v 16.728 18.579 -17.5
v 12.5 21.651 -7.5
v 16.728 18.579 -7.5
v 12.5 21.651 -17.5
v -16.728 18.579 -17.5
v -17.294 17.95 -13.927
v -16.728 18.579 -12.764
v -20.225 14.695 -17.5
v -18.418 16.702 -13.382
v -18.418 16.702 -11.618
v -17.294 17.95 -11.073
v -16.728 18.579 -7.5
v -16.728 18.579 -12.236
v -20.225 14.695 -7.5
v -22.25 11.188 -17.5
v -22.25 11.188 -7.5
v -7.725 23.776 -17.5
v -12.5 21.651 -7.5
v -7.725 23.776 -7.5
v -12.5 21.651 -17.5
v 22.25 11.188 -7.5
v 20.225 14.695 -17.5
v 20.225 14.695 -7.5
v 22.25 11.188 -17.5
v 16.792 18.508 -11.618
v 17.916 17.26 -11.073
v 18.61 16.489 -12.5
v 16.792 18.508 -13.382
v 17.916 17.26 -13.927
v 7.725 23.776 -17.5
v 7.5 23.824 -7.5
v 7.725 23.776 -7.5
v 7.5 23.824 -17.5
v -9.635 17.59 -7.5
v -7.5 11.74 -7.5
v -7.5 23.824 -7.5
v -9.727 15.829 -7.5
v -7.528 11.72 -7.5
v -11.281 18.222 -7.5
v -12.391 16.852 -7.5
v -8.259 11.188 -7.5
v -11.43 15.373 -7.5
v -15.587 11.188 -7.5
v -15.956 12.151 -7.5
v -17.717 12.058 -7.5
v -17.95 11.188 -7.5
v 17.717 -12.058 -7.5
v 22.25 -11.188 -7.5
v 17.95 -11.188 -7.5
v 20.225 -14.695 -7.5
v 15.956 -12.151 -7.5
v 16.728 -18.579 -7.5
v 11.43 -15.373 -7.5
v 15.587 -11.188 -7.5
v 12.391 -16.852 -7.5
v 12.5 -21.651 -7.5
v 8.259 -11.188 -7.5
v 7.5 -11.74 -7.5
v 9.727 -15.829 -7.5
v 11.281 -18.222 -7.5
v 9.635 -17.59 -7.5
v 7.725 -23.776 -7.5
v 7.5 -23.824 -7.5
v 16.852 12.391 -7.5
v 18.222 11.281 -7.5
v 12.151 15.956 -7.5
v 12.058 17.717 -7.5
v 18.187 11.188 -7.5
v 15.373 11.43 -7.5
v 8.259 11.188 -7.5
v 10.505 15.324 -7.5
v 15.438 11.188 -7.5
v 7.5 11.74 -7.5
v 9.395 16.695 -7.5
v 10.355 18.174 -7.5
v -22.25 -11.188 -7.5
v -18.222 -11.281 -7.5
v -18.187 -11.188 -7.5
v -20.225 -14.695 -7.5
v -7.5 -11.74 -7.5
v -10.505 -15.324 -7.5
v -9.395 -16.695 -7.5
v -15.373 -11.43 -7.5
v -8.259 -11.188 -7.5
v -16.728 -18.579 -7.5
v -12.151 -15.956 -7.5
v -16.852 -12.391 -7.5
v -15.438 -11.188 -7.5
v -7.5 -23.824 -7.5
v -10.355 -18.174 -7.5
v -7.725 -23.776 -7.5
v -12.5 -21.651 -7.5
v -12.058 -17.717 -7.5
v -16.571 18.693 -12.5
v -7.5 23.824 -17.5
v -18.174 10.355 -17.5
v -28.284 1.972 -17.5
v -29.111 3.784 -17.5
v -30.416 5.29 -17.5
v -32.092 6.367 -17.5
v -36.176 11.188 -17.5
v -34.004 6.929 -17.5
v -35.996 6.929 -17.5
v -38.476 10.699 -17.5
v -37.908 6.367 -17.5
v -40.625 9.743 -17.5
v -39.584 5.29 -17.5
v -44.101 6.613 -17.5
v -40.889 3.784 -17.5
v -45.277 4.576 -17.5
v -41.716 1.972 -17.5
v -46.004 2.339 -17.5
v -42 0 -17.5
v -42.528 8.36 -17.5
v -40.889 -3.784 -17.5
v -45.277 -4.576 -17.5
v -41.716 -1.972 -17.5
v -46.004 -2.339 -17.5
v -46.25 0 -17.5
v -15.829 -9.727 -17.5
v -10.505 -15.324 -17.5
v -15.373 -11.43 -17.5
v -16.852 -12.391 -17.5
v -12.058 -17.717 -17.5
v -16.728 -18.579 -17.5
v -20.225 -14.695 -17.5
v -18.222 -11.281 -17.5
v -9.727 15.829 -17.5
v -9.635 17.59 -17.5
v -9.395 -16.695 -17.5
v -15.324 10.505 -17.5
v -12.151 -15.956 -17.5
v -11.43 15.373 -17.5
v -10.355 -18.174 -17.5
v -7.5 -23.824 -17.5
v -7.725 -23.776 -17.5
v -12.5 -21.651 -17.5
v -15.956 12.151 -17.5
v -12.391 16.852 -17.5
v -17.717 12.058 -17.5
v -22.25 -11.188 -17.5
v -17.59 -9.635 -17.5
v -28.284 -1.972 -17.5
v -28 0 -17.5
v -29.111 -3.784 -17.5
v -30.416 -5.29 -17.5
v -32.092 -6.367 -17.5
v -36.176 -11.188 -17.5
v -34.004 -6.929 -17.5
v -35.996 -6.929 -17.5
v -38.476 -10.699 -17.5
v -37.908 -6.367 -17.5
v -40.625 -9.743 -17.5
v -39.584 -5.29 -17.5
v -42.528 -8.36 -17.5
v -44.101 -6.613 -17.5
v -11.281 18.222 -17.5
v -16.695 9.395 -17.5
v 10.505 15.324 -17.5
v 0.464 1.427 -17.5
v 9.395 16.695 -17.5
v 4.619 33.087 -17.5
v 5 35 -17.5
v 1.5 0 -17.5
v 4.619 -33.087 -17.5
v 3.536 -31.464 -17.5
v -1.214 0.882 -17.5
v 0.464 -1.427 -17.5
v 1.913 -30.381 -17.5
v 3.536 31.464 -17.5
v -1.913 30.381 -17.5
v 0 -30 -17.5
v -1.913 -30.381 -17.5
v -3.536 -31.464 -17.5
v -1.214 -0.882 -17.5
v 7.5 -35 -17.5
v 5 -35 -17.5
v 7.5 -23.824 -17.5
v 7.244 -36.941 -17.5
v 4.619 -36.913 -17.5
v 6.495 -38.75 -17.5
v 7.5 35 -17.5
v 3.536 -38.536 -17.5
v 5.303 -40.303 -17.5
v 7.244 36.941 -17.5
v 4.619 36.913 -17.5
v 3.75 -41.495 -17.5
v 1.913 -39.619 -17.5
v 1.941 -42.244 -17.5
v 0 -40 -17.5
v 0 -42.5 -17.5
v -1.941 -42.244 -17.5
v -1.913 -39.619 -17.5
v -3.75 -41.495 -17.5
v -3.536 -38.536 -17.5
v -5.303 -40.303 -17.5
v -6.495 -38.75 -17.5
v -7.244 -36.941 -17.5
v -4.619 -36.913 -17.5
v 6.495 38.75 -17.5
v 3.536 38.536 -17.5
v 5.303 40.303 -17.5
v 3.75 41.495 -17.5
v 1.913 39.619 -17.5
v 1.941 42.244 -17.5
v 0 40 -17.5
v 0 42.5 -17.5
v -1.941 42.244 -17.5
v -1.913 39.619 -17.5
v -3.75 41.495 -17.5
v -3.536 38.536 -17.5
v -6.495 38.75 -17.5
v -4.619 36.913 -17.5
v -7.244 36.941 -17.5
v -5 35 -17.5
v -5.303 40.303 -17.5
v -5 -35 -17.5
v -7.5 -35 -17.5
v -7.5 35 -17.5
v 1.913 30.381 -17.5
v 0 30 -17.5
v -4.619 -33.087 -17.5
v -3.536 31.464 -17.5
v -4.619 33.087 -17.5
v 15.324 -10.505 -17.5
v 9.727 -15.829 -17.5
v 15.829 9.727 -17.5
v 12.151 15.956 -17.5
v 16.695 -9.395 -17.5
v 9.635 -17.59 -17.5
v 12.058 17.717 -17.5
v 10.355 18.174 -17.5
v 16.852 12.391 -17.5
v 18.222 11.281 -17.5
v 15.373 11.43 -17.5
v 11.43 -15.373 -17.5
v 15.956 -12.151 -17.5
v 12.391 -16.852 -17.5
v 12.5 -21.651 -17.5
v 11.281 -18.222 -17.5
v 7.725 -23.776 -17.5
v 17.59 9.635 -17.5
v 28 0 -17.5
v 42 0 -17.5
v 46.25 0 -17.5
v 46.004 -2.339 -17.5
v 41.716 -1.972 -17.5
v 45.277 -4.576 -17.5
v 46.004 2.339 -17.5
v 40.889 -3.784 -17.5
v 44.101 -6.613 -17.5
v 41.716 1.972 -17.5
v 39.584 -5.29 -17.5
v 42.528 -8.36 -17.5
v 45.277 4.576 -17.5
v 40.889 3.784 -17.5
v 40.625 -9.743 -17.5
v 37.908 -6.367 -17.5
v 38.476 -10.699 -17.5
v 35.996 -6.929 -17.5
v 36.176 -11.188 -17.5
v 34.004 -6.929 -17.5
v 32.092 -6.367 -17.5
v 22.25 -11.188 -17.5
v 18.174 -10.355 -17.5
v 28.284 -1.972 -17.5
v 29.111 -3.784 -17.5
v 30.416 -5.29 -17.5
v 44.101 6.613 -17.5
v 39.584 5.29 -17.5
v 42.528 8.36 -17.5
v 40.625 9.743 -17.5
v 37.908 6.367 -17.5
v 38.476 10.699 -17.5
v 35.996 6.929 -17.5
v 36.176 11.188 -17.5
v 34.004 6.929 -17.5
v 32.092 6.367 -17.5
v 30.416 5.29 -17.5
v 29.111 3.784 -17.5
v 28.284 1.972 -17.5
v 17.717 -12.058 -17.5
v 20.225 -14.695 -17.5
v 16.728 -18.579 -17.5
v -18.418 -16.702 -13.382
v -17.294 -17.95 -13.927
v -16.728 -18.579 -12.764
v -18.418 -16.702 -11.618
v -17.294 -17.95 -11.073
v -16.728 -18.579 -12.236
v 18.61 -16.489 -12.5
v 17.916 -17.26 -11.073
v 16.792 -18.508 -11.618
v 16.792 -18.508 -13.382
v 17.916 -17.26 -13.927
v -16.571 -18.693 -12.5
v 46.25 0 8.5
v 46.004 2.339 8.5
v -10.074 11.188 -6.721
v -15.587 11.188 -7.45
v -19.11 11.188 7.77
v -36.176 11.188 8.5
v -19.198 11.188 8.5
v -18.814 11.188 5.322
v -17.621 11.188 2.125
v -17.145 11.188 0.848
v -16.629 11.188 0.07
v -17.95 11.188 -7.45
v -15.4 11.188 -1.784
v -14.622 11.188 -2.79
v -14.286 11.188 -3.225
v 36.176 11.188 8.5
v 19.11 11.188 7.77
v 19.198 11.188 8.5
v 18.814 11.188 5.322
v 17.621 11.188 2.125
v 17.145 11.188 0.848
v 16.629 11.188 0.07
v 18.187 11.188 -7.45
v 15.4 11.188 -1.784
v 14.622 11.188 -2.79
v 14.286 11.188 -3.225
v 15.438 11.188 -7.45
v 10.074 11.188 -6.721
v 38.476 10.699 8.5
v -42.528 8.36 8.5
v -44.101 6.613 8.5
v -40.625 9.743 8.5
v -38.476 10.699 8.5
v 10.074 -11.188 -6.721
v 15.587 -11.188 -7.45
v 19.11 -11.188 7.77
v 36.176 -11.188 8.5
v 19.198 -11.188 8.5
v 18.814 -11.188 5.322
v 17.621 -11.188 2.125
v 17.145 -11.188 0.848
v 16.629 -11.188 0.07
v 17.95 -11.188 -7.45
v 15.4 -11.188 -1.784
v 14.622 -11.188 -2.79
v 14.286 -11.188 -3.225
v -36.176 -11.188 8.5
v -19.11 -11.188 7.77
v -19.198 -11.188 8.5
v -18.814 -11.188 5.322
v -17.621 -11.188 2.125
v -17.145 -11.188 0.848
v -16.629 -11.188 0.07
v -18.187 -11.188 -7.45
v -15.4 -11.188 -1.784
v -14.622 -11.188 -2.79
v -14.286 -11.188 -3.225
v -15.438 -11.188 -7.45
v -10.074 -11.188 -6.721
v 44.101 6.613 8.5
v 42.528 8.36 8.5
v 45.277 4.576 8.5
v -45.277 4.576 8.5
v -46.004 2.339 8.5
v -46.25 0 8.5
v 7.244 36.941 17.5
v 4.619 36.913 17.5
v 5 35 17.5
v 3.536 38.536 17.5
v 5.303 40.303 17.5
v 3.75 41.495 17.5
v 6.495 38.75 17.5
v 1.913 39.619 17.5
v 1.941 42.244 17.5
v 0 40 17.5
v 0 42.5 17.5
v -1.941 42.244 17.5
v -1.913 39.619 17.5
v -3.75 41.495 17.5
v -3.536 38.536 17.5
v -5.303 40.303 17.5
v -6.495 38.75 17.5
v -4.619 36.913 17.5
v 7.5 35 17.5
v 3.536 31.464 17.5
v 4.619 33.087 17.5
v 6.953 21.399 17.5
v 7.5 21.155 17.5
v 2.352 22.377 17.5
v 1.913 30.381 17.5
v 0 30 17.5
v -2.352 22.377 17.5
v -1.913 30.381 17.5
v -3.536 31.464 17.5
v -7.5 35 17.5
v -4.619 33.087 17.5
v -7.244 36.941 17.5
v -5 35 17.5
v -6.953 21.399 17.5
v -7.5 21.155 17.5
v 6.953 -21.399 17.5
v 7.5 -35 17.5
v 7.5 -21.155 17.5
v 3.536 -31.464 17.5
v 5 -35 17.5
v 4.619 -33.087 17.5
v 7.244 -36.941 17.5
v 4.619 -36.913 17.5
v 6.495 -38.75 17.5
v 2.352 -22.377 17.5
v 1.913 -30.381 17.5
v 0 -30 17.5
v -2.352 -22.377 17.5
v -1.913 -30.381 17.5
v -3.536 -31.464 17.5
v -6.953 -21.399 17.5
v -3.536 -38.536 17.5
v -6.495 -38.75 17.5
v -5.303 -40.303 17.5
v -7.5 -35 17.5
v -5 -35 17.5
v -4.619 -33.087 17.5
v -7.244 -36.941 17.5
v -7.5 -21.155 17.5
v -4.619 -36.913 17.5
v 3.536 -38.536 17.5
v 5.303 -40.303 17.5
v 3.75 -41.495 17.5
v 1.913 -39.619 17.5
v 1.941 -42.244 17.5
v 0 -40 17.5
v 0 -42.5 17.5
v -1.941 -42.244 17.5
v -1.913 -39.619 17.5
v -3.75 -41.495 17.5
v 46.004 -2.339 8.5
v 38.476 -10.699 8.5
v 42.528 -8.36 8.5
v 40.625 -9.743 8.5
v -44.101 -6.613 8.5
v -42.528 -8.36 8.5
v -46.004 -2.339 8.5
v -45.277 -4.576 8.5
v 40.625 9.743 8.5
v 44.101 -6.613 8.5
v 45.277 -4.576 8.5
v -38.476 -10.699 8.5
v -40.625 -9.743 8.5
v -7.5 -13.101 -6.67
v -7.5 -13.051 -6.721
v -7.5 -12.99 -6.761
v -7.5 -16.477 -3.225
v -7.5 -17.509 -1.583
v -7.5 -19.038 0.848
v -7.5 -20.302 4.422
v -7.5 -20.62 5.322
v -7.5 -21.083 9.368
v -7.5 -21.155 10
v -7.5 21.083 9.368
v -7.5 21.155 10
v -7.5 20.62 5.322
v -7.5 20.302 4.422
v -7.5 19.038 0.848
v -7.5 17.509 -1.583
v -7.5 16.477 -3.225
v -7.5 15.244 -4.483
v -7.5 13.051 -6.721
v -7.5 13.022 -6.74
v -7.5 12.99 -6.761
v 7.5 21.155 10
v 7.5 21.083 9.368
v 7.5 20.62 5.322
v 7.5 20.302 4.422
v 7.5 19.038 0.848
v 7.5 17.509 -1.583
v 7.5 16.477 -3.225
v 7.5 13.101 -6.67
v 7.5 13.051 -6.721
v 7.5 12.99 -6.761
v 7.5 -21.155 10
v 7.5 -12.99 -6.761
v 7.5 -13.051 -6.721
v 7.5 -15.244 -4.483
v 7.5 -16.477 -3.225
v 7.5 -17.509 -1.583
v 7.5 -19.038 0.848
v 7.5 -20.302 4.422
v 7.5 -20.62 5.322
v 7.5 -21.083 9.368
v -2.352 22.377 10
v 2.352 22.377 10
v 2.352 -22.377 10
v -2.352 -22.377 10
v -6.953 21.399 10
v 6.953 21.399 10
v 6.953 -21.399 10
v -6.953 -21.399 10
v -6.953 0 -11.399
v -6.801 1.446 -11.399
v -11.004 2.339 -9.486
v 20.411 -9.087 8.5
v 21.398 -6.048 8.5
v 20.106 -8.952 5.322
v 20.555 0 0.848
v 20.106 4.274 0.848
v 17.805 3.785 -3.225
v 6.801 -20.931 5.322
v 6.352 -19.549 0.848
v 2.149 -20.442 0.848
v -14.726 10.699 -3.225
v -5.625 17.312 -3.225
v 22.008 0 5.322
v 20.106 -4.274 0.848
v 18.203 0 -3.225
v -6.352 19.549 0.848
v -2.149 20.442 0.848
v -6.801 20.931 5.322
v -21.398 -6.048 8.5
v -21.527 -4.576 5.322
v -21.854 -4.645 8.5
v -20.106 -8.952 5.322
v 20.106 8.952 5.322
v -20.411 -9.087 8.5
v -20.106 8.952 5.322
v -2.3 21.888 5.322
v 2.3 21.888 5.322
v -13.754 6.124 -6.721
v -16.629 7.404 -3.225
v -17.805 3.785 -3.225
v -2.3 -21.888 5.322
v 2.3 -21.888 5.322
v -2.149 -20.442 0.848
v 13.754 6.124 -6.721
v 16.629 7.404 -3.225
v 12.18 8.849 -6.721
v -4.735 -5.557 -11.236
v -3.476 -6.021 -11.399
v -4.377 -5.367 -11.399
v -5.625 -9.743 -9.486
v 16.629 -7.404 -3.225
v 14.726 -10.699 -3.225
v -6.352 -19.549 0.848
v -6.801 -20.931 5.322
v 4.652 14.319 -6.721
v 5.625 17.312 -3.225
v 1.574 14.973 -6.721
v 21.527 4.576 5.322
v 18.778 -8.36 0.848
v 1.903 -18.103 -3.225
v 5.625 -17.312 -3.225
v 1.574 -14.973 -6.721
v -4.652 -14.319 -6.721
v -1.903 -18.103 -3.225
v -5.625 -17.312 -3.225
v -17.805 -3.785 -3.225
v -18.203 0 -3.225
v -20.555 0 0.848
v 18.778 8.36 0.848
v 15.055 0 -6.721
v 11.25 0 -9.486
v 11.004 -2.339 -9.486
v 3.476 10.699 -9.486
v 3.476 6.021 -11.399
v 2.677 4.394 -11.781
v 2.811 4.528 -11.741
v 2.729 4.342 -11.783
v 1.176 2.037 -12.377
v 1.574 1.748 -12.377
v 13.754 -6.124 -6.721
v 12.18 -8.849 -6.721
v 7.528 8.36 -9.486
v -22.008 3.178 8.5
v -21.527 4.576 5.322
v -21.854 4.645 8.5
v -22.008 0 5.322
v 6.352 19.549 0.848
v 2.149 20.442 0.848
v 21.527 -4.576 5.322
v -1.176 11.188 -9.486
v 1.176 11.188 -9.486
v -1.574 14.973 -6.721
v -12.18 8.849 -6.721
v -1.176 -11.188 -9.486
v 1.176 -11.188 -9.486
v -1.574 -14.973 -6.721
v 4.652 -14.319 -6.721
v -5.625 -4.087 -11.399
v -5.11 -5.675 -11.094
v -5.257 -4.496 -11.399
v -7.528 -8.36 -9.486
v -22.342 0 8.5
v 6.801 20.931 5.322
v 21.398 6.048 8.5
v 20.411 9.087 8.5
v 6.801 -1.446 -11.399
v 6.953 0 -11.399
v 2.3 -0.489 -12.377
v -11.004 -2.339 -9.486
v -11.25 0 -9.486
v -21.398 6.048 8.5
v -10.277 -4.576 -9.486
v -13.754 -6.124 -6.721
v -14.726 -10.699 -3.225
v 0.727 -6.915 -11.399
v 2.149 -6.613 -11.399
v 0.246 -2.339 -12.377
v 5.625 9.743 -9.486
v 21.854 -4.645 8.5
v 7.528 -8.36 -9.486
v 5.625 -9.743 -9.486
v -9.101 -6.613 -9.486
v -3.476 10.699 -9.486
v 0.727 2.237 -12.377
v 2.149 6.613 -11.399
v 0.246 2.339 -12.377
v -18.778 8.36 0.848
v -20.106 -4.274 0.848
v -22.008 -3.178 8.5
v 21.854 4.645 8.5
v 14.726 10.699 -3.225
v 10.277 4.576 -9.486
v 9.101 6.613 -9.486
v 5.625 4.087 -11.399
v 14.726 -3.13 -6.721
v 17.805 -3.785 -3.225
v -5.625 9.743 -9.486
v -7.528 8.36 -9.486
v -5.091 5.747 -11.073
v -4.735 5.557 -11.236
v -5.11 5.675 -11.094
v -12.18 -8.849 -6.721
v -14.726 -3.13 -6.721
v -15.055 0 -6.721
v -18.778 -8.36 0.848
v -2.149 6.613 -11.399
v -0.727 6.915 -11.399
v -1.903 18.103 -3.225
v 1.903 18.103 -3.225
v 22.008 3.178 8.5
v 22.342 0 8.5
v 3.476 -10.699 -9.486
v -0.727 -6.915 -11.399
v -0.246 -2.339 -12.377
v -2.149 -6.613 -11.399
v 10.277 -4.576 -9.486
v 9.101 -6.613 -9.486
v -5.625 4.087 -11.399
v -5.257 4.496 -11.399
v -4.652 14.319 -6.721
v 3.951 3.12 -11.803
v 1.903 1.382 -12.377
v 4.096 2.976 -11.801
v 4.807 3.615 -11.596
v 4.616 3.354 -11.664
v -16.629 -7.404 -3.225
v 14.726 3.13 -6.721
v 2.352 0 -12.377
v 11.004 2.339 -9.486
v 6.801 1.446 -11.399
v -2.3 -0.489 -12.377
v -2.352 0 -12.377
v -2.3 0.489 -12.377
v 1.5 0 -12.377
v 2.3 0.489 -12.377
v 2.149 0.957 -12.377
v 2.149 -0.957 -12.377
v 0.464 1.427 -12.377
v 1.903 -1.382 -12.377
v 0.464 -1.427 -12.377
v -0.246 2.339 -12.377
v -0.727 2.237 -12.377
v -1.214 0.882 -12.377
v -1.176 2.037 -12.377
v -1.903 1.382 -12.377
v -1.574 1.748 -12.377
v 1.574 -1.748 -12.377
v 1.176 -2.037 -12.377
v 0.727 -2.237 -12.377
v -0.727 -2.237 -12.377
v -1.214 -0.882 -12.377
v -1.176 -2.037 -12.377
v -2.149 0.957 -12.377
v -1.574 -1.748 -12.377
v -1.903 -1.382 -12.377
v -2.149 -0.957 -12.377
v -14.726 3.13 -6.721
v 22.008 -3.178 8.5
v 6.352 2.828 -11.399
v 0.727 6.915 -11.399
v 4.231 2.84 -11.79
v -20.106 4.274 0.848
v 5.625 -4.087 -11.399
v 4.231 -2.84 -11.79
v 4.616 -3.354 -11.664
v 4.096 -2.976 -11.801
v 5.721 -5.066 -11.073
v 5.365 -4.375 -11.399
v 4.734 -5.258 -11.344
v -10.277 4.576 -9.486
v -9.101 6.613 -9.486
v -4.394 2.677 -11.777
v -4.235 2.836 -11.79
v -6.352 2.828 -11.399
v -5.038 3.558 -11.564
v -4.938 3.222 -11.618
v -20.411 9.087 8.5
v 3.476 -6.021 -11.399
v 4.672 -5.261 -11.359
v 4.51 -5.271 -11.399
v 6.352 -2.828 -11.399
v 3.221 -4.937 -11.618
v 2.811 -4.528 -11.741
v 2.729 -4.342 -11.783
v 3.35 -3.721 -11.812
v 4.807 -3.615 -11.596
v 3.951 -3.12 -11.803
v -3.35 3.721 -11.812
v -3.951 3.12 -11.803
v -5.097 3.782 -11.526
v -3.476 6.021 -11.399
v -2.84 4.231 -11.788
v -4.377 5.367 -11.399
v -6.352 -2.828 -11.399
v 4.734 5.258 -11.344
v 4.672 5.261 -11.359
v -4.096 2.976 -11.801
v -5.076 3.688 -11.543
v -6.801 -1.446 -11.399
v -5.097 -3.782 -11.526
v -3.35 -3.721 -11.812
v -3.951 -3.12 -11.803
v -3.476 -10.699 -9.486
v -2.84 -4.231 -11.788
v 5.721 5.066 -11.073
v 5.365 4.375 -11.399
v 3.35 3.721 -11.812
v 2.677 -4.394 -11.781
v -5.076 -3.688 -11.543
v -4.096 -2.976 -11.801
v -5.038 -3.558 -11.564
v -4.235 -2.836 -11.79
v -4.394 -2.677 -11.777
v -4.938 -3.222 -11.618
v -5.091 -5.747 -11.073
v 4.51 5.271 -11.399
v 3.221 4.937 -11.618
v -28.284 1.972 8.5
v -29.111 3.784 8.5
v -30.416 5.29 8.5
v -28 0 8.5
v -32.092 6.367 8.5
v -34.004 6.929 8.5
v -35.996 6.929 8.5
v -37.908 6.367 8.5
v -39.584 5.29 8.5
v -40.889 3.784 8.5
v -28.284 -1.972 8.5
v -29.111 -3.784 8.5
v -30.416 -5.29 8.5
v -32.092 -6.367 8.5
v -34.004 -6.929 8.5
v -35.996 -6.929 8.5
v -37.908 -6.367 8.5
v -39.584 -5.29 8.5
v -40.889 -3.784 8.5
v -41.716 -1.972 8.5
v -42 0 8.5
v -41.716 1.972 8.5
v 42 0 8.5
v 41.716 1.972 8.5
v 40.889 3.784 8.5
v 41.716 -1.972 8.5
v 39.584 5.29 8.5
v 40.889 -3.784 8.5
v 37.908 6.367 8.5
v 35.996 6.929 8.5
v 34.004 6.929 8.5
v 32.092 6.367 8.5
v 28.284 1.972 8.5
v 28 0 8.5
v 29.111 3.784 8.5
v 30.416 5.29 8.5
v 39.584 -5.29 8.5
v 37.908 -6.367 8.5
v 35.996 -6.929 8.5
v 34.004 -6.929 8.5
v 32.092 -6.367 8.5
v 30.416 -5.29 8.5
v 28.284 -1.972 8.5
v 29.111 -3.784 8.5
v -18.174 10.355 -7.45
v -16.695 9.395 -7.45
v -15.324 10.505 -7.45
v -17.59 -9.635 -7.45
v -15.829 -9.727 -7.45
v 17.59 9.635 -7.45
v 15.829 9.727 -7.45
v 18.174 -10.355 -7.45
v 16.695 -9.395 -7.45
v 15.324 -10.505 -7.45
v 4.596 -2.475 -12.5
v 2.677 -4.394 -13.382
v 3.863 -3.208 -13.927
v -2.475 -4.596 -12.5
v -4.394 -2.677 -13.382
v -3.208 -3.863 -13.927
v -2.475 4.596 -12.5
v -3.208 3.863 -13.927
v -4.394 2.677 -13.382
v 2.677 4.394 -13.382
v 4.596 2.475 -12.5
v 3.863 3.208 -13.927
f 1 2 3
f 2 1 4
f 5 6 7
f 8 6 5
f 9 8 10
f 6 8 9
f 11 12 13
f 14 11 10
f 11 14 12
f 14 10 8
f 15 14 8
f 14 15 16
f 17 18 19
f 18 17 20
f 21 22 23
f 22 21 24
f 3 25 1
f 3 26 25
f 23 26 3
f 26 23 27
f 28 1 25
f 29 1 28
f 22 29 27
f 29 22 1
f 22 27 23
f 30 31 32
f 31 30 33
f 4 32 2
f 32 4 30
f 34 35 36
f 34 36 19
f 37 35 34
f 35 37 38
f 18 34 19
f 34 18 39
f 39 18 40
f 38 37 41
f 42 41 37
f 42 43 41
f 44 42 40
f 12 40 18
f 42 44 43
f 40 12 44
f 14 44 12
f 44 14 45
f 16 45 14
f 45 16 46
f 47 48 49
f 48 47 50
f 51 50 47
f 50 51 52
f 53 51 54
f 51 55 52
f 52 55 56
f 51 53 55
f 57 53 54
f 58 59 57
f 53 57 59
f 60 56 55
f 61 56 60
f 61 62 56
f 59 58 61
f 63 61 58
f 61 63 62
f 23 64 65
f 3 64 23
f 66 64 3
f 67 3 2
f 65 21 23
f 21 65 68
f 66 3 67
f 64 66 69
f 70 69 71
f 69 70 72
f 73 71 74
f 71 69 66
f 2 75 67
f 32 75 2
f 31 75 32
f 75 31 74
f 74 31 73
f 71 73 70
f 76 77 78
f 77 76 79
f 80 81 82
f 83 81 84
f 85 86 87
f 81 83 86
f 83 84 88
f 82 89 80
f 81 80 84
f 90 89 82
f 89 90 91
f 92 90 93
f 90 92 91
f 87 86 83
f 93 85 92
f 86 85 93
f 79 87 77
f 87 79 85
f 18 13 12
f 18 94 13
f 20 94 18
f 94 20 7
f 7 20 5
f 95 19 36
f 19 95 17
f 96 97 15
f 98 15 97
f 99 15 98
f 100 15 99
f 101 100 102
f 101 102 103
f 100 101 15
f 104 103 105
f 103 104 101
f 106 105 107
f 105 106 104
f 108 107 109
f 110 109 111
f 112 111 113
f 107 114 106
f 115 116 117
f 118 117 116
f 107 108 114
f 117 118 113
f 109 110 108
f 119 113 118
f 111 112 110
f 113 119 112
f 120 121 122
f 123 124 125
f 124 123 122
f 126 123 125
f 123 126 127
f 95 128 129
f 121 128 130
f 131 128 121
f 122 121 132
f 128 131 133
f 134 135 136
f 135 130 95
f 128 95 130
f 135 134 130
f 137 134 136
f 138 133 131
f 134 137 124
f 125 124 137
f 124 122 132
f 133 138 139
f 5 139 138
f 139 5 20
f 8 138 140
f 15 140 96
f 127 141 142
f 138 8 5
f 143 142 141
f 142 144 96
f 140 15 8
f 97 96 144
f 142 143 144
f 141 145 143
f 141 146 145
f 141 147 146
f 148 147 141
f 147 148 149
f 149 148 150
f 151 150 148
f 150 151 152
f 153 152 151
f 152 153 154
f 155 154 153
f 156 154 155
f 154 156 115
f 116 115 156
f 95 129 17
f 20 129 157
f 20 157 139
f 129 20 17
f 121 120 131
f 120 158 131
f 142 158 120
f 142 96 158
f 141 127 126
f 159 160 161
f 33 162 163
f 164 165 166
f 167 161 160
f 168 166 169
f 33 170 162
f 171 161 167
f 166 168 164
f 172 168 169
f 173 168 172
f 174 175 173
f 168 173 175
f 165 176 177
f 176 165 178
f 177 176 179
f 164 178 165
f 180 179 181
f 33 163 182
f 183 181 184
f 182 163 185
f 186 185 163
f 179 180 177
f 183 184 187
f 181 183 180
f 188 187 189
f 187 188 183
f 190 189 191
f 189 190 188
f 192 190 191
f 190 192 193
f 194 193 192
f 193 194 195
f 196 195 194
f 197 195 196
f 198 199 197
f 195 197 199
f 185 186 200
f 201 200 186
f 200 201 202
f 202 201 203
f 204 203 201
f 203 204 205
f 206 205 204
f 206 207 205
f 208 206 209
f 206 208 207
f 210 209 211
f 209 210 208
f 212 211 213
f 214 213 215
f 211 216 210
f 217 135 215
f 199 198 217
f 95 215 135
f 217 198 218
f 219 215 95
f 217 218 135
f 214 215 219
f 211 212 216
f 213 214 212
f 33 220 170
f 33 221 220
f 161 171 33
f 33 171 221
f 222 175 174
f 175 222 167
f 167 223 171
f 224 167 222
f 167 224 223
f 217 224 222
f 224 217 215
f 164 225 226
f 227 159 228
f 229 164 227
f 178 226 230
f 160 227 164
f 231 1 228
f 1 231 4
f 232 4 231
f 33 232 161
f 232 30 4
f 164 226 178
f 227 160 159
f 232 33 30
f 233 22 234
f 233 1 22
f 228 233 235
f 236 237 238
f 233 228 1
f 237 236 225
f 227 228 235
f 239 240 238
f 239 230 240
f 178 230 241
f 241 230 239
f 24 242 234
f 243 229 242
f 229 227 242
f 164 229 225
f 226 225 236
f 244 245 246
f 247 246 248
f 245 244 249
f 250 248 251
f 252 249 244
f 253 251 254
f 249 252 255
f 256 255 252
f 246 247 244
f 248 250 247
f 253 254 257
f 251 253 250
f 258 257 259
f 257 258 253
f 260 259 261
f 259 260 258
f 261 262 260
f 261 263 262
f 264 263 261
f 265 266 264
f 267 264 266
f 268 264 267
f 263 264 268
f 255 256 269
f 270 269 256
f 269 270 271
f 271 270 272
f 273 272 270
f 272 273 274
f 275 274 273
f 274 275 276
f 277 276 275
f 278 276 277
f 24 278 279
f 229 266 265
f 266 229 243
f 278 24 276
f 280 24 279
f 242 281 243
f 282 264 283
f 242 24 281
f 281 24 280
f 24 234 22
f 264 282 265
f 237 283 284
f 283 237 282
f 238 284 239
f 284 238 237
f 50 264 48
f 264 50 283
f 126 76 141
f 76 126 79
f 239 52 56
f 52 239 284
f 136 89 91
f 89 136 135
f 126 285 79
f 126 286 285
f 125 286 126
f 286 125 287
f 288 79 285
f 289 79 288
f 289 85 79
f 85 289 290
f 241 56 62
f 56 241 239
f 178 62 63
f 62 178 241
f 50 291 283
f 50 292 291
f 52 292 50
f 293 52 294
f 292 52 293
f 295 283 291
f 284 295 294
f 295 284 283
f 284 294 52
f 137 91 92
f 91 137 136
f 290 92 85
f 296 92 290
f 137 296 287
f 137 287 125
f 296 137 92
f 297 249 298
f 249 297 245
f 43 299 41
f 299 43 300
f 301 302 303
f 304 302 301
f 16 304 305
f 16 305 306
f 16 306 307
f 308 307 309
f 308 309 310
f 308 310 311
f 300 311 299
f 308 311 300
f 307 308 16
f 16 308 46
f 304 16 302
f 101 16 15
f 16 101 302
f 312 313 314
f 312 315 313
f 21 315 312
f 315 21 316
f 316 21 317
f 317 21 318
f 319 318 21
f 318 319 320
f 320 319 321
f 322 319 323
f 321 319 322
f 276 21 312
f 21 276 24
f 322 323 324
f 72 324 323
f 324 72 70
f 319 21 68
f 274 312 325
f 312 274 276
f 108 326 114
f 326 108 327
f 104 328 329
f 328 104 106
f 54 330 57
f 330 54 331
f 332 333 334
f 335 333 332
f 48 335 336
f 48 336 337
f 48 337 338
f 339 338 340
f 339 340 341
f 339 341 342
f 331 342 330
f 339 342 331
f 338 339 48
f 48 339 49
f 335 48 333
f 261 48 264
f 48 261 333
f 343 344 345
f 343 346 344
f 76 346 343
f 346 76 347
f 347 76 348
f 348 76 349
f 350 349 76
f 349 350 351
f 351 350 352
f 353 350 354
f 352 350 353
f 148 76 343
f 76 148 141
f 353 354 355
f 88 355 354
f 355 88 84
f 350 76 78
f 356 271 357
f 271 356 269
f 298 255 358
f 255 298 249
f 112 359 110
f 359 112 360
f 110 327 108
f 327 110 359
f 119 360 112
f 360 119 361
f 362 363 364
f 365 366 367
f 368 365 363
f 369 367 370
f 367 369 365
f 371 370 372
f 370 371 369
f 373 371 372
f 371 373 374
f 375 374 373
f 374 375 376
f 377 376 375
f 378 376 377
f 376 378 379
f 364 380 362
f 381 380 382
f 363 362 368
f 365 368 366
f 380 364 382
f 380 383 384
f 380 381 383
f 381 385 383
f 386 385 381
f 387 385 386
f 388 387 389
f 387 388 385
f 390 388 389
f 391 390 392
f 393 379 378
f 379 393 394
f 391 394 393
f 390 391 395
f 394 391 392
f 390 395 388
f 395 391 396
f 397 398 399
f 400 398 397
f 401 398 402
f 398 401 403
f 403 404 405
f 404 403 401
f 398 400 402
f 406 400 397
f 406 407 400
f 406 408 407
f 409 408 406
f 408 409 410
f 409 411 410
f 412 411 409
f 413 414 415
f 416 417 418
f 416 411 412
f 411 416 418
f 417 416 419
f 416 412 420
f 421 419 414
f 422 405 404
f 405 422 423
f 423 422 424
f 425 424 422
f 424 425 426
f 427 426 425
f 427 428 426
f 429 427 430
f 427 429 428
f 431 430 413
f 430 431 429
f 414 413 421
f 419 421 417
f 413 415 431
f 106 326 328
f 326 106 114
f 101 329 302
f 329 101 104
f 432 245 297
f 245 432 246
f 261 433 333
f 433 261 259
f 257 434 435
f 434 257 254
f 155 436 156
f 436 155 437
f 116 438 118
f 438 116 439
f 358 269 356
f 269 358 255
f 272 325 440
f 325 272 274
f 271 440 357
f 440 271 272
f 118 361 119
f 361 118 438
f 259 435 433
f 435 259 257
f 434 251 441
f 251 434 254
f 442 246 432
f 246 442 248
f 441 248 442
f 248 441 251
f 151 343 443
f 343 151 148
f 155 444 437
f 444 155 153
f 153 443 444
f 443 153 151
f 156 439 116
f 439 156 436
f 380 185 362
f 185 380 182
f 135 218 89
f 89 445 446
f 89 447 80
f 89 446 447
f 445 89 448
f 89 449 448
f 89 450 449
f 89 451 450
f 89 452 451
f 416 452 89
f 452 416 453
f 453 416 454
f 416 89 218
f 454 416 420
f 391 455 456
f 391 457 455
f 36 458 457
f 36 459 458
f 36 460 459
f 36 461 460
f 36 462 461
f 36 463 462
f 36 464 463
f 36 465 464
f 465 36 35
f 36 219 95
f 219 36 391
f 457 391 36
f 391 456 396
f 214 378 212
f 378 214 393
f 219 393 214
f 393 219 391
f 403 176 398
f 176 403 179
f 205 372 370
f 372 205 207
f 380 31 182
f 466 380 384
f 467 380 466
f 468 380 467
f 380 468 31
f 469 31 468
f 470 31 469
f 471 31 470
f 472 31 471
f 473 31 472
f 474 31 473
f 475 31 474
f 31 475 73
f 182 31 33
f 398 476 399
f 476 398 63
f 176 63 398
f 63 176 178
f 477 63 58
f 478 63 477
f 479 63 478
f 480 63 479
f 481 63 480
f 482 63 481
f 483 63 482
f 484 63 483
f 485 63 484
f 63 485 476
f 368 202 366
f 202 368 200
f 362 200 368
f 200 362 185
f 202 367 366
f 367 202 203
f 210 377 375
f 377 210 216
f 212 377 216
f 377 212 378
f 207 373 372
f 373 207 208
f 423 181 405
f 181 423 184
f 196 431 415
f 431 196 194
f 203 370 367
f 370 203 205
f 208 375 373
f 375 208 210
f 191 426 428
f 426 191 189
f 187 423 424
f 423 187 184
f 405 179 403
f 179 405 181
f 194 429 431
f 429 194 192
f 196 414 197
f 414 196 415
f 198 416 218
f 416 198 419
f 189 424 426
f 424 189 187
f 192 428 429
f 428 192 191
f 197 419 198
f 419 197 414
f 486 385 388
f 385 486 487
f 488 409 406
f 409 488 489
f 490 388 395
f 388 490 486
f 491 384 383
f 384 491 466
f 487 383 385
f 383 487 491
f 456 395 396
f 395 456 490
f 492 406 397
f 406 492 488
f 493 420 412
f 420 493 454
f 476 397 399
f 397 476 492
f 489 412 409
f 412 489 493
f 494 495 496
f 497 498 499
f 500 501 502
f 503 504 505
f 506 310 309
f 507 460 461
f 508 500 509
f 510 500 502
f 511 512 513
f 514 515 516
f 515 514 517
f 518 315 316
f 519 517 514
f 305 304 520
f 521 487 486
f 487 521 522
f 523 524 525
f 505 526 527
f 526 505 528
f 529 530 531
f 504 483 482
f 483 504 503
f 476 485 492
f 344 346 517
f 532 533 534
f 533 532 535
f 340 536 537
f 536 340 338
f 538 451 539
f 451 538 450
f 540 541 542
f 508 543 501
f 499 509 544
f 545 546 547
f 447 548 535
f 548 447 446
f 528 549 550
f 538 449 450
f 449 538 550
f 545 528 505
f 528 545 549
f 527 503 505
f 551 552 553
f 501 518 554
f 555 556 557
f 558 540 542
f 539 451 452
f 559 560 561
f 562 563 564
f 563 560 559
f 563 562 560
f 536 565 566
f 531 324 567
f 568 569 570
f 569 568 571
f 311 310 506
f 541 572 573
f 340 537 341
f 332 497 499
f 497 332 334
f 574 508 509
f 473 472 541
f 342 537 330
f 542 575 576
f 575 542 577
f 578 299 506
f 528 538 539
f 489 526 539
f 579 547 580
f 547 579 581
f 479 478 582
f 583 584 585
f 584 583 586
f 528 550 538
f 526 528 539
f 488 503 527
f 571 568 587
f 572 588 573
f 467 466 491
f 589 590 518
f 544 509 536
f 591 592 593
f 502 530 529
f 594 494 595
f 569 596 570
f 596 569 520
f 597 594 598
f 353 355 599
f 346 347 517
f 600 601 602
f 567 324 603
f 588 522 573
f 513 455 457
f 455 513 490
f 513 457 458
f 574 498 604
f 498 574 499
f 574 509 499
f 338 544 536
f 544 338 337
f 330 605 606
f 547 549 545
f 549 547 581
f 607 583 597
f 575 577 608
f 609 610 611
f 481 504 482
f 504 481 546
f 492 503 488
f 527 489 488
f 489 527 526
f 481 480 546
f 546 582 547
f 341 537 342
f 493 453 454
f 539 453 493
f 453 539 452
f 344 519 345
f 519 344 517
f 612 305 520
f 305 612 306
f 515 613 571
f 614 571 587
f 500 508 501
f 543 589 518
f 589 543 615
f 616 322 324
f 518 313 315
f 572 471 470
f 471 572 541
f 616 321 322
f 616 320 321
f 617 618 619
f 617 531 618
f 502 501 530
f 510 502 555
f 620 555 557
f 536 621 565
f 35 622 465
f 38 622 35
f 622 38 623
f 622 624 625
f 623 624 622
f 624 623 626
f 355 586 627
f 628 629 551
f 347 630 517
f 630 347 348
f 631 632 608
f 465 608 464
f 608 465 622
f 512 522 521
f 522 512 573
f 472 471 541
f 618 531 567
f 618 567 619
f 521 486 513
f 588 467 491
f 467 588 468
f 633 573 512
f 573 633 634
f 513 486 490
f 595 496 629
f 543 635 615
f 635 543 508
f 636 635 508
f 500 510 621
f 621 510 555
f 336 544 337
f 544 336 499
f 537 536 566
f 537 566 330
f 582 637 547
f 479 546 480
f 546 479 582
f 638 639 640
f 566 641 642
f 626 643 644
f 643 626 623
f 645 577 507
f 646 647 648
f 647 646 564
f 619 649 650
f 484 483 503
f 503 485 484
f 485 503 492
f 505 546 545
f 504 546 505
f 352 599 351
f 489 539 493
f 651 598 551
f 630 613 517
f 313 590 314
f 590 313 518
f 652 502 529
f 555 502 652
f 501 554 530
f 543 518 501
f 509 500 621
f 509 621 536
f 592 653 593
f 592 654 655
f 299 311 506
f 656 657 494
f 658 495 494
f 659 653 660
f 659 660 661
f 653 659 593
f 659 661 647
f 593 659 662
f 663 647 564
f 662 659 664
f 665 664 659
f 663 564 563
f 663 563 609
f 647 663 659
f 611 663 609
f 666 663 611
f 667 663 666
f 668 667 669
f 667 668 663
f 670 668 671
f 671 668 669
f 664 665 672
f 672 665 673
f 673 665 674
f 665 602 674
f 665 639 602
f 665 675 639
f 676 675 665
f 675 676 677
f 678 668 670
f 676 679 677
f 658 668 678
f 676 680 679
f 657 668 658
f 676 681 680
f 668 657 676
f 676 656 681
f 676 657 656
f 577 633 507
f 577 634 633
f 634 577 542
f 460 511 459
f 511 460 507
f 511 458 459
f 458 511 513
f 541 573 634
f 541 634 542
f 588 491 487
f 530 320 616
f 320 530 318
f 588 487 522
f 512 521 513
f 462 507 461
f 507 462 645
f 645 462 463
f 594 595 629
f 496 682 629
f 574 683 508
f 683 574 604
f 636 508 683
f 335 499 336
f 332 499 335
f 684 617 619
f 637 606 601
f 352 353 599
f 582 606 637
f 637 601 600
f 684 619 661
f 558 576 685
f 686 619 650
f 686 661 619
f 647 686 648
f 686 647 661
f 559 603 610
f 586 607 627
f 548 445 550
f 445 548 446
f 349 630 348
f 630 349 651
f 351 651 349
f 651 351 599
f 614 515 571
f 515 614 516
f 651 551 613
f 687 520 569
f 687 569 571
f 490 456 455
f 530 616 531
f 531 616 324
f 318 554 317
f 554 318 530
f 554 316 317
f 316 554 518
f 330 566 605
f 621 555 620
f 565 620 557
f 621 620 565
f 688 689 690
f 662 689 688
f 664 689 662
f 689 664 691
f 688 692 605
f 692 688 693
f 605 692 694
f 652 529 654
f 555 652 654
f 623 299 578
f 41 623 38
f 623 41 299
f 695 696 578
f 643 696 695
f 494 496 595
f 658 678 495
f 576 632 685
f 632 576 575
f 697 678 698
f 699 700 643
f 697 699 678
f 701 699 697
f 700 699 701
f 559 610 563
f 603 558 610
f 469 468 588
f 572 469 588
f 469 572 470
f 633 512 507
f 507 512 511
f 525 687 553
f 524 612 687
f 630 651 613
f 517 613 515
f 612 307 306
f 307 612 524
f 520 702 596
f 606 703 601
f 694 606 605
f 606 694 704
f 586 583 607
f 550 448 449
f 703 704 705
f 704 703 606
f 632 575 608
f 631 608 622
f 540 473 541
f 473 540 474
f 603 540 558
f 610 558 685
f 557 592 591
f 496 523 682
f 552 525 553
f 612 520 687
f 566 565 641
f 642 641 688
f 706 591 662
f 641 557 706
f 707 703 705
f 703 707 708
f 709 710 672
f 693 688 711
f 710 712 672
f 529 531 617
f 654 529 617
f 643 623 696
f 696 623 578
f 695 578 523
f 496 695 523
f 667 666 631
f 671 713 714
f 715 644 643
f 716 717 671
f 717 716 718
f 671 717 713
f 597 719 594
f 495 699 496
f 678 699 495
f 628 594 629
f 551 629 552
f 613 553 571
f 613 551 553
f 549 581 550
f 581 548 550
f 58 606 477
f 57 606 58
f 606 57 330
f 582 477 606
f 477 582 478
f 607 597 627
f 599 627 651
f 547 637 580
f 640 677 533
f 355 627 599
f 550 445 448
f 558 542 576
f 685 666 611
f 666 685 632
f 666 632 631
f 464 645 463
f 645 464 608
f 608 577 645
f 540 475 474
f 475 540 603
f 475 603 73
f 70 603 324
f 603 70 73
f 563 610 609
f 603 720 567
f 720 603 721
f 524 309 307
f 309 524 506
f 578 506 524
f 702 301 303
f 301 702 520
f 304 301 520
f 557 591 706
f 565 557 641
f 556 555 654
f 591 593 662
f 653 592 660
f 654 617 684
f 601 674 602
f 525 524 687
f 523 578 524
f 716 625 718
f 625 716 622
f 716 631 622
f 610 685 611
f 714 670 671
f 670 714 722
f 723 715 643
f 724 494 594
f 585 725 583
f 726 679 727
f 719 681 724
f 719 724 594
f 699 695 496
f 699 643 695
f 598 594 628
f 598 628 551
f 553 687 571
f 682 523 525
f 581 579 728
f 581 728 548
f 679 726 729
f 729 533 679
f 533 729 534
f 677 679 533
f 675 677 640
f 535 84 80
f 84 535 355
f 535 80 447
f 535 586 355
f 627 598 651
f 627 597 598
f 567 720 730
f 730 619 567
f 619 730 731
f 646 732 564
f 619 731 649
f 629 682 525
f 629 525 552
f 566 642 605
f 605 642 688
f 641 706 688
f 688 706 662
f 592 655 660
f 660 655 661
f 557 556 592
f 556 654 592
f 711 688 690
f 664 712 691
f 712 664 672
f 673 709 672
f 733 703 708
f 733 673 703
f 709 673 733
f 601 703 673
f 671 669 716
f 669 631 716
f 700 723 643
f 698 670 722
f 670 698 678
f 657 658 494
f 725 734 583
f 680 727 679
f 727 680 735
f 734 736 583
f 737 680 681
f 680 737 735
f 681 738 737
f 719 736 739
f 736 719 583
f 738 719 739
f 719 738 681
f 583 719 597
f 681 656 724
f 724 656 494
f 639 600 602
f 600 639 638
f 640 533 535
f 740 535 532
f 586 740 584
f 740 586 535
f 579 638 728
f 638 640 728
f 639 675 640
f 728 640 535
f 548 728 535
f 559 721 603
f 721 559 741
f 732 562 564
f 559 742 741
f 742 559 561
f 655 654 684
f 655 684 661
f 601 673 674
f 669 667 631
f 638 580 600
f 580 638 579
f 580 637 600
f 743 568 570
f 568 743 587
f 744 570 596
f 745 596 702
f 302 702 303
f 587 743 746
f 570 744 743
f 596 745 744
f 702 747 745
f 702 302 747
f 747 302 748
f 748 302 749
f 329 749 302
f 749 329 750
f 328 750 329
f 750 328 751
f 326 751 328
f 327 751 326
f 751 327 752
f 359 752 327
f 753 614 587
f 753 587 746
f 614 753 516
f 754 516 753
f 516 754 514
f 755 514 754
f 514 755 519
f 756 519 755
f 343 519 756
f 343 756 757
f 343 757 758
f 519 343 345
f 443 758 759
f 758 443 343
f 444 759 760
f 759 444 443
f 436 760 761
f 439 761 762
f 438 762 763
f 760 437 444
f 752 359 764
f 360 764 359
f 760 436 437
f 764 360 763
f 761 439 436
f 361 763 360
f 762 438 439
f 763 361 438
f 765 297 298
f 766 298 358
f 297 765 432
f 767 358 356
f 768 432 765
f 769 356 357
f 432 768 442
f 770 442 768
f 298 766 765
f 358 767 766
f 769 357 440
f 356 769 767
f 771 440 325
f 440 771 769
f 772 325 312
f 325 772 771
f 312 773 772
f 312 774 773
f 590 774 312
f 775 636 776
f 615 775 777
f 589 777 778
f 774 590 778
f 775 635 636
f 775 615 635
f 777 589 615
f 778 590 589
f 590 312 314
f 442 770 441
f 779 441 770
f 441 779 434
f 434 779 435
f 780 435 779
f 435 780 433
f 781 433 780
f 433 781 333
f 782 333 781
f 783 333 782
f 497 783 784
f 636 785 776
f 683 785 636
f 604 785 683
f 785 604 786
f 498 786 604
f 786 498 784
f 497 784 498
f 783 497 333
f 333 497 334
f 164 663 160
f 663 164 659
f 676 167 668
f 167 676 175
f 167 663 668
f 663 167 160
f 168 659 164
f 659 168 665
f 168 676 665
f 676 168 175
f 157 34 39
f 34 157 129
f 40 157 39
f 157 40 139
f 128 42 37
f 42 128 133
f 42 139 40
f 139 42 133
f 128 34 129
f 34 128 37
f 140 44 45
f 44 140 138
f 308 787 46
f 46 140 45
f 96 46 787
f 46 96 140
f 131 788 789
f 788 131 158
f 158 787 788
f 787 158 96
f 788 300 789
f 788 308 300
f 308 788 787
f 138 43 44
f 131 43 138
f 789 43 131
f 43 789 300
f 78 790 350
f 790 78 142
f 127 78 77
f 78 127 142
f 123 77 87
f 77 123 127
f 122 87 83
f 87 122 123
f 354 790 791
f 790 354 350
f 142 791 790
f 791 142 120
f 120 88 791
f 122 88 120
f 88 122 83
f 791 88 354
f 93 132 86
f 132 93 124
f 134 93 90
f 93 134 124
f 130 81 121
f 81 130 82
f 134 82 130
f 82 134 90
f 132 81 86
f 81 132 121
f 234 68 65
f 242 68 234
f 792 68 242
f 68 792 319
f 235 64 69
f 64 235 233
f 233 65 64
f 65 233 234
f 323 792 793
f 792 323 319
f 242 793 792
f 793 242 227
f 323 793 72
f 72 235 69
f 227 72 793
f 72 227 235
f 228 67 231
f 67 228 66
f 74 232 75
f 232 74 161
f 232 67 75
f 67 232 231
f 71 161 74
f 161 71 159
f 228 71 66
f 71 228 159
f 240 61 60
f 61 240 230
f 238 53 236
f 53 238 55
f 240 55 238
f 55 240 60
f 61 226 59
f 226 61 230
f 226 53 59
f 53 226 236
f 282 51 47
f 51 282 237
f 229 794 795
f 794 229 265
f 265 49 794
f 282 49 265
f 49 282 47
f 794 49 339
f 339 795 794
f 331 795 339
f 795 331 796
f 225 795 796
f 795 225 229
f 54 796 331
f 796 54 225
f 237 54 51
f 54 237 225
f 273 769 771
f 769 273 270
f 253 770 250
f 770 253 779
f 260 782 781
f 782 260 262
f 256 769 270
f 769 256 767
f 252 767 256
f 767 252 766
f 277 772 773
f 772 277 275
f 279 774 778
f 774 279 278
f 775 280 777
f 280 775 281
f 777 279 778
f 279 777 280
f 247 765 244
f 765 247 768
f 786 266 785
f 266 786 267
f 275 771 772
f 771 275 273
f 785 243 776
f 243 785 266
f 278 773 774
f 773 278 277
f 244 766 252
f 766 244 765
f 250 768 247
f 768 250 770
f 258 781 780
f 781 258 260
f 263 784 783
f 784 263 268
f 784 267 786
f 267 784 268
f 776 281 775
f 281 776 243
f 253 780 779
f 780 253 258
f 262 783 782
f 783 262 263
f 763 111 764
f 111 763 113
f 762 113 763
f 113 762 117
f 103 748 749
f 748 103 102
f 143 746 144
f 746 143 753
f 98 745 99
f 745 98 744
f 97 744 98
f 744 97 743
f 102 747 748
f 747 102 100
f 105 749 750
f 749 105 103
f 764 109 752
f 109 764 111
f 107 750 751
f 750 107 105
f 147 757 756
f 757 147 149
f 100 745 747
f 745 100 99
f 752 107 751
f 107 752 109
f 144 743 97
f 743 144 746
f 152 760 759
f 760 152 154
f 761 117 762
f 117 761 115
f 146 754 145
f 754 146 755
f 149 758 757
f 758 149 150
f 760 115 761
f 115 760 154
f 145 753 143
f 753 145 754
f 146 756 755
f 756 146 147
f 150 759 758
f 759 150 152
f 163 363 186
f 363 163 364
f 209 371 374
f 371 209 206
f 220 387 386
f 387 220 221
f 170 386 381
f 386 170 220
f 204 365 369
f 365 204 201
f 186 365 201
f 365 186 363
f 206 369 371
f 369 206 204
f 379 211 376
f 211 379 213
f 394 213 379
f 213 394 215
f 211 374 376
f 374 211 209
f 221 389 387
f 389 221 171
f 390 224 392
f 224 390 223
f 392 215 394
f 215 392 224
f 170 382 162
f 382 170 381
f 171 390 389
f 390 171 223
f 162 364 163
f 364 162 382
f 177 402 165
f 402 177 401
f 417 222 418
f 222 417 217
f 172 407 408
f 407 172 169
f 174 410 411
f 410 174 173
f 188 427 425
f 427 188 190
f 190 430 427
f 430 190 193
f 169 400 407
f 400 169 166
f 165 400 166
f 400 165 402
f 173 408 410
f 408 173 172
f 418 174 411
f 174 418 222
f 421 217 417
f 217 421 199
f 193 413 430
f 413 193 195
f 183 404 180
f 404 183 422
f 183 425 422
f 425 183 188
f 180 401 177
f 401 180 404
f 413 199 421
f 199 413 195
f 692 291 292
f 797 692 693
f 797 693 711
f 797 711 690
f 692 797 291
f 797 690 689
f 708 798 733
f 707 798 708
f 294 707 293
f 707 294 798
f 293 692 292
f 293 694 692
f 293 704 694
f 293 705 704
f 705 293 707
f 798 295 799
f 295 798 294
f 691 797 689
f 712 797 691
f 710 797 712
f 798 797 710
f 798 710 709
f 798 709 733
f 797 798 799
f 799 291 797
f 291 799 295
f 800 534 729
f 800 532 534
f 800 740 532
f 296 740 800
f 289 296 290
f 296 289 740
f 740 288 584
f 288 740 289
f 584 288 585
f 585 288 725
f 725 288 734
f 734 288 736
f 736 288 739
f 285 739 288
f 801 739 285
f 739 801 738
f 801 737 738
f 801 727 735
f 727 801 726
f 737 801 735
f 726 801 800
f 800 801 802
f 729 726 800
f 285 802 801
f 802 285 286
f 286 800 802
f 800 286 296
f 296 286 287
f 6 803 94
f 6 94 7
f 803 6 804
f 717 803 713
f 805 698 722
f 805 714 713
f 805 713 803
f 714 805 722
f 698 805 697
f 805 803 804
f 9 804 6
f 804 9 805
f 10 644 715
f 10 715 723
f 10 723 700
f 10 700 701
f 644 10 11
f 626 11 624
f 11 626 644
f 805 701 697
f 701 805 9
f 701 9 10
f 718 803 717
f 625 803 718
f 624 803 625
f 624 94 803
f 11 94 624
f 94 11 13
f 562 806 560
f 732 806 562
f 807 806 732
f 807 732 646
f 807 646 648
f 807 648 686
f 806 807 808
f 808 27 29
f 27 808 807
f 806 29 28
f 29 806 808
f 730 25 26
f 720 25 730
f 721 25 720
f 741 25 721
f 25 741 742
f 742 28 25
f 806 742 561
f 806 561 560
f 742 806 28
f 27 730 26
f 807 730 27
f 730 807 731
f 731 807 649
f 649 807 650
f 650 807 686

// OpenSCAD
cart();

module cart() {
	difference() {
		union() {
			translate([0,0,-12.5])	
			cylinder(d=50, h=10, center=true);
			
			hull() {
				translate([35,0,0])
					cylinder(d=22.5, h=35, center = true);
				translate([-35,0,0])
					cylinder(d=22.5, h=35, center = true);
			}
			
			hull() {
				translate([0,35,0])
					cylinder(d=15, h=35, center = true);
				translate([0,-35,0])
					cylinder(d=15, h=35, center = true);
			}
		}
		
		translate([0,0,12.5+1])
			cube([100, 30, 10], center = true);
		
		cylinder(d=3, h=50+0.1, center = true);
		
		rotate([0,0,45-12])
			translate([0,20,-12.5])
				cylinder(d=3, h=10+0.1, center = true);
		rotate([0,0,45+12])
			translate([0,20,-12.5])
				cylinder(d=3, h=10+0.1, center = true);
		rotate([0,0,45-12+90])
			translate([0,20,-12.5])
				cylinder(d=3, h=10+0.1, center = true);
		rotate([0,0,45+12+90])
			translate([0,20,-12.5])
				cylinder(d=3, h=10+0.1, center = true);
		rotate([0,0,45-12-90])
			translate([0,20,-12.5])
				cylinder(d=3, h=10+0.1, center = true);
		rotate([0,0,45+12-90])
			translate([0,20,-12.5])
				cylinder(d=3, h=10+0.1, center = true);
		rotate([0,0,45-12+180])
			translate([0,20,-12.5])
				cylinder(d=3, h=10+0.1, center = true);
		rotate([0,0,45+12+180])
			translate([0,20,-12.5])
				cylinder(d=3, h=10+0.1, center = true);
		
		translate([0,0,10]) {
			cylinder(d=45, h=45);
			sphere(d=45);
		}
		
		translate([35,0,0])
			cylinder(d=14, h=50+0.1, center = true);
		translate([-35,0,0])
			cylinder(d=14, h=50+0.1, center = true);
		translate([0,35,0])
			cylinder(d=10, h=50+0.1, center = true);
		translate([0,-35,0])
			cylinder(d=10, h=50+0.1, center = true);
		
		translate([0,0,-12.5])
			rotate([90,0,45])
				translate([0,0,5])
					cylinder(d=3, h=100, center=false);
		translate([0,0,-12.5])
			rotate([90,0,-45])
				translate([0,0,5])
					cylinder(d=3, h=100, center=false);
		translate([0,0,-12.5])
			rotate([-90,0,45])
				translate([0,0,5])
					cylinder(d=3, h=100, center=false);
		translate([0,0,-12.5])
			rotate([-90,0,-45])
				translate([0,0,5])
					cylinder(d=3, h=100, center=false);
	}
}
